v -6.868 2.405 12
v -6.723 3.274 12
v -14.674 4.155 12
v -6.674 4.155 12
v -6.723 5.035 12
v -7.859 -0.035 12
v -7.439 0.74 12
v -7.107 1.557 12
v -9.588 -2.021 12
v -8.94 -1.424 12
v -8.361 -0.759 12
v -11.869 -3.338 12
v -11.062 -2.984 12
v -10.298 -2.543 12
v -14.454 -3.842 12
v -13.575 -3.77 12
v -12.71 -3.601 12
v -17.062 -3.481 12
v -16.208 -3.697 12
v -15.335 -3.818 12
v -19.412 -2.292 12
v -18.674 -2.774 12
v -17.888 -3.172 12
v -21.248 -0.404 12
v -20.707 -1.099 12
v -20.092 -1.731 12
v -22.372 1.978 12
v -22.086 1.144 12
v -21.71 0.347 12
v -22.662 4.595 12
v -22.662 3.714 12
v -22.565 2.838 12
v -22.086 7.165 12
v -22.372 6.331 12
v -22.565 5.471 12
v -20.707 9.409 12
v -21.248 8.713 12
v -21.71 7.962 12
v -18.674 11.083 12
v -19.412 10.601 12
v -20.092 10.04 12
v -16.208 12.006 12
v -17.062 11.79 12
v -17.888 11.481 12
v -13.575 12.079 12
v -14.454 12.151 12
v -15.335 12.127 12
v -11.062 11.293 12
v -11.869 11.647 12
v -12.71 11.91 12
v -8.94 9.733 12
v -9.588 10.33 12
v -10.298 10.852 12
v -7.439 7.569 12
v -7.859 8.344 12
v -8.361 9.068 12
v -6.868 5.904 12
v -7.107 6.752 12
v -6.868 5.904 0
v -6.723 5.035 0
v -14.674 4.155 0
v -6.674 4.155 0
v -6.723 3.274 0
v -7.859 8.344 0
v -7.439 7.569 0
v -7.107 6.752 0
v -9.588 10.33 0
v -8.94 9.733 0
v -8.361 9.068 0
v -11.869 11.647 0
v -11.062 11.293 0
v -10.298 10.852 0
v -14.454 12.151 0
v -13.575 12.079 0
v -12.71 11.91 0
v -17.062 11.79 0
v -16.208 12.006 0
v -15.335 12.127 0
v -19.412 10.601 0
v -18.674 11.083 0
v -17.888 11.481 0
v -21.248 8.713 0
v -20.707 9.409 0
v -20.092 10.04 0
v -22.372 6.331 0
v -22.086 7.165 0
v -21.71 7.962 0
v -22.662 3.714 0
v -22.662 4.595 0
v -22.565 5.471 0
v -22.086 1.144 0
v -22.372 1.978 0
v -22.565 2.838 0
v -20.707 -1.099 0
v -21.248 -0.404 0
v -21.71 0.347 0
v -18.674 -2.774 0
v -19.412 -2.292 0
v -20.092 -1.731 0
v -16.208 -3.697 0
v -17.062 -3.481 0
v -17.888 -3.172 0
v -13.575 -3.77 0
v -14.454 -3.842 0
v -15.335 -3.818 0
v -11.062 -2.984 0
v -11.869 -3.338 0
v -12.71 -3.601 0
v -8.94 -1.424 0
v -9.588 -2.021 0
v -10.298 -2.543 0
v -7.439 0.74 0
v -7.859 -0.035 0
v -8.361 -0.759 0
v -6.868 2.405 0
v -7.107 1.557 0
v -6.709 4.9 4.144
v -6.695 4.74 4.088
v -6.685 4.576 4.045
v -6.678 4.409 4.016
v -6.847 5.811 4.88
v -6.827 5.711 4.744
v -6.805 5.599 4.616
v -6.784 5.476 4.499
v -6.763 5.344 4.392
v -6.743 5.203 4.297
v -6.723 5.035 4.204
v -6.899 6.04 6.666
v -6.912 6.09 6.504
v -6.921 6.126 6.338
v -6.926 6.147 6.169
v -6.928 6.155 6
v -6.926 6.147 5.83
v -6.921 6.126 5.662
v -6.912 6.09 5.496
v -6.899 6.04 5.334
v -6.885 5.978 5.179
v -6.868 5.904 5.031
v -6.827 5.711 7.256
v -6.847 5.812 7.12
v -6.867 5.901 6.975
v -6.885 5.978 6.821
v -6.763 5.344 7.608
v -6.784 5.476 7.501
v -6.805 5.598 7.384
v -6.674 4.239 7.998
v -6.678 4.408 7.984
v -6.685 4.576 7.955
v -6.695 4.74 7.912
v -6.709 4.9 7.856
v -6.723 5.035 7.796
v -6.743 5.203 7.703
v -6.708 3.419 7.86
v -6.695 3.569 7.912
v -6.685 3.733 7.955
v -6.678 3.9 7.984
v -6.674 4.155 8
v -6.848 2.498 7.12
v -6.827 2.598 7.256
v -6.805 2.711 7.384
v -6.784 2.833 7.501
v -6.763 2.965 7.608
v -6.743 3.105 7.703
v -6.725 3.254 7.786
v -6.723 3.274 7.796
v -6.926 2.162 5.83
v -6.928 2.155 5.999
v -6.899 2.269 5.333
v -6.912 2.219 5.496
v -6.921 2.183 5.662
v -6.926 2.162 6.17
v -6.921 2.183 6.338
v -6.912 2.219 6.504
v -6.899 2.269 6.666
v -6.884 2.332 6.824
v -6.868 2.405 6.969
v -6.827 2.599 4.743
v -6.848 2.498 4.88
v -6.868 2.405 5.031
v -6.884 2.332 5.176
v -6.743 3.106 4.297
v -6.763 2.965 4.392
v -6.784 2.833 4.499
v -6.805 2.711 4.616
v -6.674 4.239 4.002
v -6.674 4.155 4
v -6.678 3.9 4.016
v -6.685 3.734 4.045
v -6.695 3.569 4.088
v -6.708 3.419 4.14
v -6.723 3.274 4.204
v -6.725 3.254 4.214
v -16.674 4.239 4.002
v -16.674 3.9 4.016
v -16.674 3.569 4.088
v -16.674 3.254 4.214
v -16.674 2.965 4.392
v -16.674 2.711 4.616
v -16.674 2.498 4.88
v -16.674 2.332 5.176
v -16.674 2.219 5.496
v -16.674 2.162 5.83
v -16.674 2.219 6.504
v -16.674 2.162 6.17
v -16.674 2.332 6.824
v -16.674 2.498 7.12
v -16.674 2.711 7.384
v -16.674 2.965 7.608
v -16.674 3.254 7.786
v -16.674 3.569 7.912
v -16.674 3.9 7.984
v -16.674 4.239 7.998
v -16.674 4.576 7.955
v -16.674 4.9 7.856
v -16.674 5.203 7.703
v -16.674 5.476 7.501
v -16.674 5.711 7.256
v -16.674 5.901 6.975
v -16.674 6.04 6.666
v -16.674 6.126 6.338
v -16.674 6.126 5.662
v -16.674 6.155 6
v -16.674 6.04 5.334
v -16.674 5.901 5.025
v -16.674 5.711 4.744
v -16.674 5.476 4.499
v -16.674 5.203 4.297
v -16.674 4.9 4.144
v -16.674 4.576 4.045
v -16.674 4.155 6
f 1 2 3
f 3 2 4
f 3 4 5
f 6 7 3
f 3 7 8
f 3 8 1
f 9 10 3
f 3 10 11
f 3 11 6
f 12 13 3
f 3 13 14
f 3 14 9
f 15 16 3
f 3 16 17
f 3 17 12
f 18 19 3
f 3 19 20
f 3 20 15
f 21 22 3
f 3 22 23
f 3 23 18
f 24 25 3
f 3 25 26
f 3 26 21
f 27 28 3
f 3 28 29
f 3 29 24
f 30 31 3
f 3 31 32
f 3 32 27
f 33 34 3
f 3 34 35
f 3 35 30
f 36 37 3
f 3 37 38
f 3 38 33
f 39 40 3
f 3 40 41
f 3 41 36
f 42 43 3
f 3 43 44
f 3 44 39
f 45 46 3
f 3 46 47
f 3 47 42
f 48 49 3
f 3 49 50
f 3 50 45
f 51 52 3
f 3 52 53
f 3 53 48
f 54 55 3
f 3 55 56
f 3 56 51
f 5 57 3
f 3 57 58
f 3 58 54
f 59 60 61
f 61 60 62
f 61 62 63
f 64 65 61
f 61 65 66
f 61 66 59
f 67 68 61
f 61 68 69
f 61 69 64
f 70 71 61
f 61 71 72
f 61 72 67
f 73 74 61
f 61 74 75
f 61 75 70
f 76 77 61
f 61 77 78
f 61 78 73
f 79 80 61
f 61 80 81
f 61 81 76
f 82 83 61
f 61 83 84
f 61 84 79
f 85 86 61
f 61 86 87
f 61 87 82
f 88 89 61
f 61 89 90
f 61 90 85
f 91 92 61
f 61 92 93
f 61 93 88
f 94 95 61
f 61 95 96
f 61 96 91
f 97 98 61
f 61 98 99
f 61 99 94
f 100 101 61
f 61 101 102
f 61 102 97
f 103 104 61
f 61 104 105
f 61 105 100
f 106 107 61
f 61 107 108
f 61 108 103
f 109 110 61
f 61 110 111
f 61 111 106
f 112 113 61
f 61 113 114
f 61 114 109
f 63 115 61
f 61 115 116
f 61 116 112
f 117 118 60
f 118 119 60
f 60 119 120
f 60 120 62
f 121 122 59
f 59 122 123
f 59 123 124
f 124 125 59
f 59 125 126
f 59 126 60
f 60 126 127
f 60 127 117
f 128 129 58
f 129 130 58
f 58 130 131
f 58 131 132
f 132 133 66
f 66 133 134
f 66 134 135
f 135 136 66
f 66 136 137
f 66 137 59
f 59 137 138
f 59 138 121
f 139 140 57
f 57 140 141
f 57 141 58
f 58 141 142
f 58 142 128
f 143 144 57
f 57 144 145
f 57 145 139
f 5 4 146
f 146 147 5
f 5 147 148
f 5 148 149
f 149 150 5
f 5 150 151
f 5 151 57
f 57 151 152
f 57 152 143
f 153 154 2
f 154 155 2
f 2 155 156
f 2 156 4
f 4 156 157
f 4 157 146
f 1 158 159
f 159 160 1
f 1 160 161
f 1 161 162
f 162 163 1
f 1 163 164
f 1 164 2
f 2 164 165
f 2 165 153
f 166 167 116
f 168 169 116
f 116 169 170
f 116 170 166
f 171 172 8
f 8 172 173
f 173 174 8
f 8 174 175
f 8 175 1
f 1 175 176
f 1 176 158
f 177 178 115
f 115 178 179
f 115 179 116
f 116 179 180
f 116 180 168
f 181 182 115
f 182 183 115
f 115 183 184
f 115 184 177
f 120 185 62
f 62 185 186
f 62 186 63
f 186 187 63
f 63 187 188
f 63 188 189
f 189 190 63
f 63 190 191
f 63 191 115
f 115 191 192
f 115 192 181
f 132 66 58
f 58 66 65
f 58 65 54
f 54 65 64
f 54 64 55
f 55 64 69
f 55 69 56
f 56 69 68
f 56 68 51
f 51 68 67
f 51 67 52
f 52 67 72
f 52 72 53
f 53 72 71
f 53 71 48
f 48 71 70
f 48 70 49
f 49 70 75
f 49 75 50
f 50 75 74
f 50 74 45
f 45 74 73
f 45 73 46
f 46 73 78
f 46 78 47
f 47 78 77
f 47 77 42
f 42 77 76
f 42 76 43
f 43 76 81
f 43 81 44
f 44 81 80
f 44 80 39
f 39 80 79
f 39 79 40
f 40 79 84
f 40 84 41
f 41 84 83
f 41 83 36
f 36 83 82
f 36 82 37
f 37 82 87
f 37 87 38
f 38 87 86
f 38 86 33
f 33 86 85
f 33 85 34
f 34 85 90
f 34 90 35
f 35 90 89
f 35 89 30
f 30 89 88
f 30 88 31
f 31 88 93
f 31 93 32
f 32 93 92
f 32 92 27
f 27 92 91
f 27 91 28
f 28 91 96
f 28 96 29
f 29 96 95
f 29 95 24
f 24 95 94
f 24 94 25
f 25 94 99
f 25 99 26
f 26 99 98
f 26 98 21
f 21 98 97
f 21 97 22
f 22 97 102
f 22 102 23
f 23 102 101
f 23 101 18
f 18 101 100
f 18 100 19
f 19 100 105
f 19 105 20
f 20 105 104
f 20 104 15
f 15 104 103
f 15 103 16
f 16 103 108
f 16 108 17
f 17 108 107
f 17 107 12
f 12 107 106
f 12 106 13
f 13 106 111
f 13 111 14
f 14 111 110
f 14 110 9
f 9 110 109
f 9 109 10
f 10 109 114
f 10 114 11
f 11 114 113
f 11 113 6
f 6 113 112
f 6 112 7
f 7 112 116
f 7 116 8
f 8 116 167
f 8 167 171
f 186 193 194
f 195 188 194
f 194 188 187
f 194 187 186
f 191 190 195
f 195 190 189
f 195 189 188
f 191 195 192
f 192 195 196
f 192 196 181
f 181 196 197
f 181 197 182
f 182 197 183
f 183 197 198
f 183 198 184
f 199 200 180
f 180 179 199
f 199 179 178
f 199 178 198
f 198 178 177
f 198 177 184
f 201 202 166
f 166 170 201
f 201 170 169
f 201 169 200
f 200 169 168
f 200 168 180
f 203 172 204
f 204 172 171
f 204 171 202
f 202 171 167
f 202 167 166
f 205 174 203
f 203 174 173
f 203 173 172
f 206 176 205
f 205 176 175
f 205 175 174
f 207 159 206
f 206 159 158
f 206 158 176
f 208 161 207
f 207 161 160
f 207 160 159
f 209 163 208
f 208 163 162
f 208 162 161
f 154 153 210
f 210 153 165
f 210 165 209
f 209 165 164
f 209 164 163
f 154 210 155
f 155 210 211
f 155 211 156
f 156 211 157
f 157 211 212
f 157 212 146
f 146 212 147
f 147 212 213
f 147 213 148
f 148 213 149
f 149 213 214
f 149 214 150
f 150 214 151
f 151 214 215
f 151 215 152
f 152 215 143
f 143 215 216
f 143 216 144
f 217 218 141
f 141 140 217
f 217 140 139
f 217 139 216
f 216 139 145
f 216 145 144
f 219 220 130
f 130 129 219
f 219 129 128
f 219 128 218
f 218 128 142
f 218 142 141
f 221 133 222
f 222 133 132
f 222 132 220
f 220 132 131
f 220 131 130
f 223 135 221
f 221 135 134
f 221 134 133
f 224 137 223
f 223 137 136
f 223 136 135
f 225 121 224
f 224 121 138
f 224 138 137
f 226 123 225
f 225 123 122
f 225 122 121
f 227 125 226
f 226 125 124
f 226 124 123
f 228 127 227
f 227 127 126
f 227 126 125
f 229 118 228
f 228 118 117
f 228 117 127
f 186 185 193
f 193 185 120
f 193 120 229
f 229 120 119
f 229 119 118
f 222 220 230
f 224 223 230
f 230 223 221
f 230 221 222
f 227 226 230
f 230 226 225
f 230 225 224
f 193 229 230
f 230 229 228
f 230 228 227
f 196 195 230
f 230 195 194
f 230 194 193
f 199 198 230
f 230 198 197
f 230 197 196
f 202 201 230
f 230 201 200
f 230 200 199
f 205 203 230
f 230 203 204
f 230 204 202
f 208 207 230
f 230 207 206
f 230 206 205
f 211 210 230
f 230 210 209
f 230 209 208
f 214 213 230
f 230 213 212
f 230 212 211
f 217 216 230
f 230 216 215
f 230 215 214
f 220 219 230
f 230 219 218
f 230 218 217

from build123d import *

# Parameters (mm, degrees)
SKETCH1_W           = 16
SKETCH1_H           = 16
BOSS_EXTRUDE1_DEPTH = 12
CUT_EXTRUDE1_DEPTH  = 13
SKETCH2_R           = 2
CUT_EXTRUDE2_DEPTH  = 10


with BuildPart() as part:
    # Sketch1 → Boss-Extrude1 (new body)
    with BuildSketch(Plane.XY):
        with Locations((-14.67401686, 4.154520967)):
            Rectangle(SKETCH1_W, SKETCH1_H)
    extrude(amount=BOSS_EXTRUDE1_DEPTH)

    # Sketch3 → Cut-Extrude1 (cut)
    with BuildSketch(Plane.XY.offset(12)):
        with BuildLine():
            Line((-6.67401686, 12.154520967), (-14.67401686, 12.154520967))
            ThreePointArc((-14.67401686, 12.154520967), (-9.017162611, 9.811375216), (-6.67401686, 4.154520967))
            Line((-6.67401686, 4.154520967), (-6.67401686, 12.154520967))
        make_face()
        with BuildLine():
            Line((-6.67401686, -3.845479033), (-6.67401686, 4.154520967))
            ThreePointArc((-6.67401686, 4.154520967), (-9.017162611, -1.502333283), (-14.67401686, -3.845479033))
            Line((-14.67401686, -3.845479033), (-6.67401686, -3.845479033))
        make_face()
        with BuildLine():
            Line((-14.67401686, 12.154520967), (-22.67401686, 12.154520967))
            Line((-22.67401686, 12.154520967), (-22.67401686, 4.154520967))
            ThreePointArc((-22.67401686, 4.154520967), (-20.33087111, 9.811375216), (-14.67401686, 12.154520967))
        make_face()
        with BuildLine():
            ThreePointArc((-14.67401686, -3.845479033), (-20.33087111, -1.502333283), (-22.67401686, 4.154520967))
            Line((-22.67401686, 4.154520967), (-22.67401686, -3.845479033))
            Line((-22.67401686, -3.845479033), (-14.67401686, -3.845479033))
        make_face()
    extrude(amount=-CUT_EXTRUDE1_DEPTH, mode=Mode.SUBTRACT)

    # Sketch2 → Cut-Extrude2 (cut)
    with BuildSketch(Plane(origin=(-6.67401686, 0, 0), x_dir=(0, 0, -1), z_dir=(1, 0, 0))):
        with Locations(Location((-6, 4.154520967, 0), (0, 0, 90))):
            Circle(SKETCH2_R)
    extrude(amount=-CUT_EXTRUDE2_DEPTH, mode=Mode.SUBTRACT)


solid = part.part
